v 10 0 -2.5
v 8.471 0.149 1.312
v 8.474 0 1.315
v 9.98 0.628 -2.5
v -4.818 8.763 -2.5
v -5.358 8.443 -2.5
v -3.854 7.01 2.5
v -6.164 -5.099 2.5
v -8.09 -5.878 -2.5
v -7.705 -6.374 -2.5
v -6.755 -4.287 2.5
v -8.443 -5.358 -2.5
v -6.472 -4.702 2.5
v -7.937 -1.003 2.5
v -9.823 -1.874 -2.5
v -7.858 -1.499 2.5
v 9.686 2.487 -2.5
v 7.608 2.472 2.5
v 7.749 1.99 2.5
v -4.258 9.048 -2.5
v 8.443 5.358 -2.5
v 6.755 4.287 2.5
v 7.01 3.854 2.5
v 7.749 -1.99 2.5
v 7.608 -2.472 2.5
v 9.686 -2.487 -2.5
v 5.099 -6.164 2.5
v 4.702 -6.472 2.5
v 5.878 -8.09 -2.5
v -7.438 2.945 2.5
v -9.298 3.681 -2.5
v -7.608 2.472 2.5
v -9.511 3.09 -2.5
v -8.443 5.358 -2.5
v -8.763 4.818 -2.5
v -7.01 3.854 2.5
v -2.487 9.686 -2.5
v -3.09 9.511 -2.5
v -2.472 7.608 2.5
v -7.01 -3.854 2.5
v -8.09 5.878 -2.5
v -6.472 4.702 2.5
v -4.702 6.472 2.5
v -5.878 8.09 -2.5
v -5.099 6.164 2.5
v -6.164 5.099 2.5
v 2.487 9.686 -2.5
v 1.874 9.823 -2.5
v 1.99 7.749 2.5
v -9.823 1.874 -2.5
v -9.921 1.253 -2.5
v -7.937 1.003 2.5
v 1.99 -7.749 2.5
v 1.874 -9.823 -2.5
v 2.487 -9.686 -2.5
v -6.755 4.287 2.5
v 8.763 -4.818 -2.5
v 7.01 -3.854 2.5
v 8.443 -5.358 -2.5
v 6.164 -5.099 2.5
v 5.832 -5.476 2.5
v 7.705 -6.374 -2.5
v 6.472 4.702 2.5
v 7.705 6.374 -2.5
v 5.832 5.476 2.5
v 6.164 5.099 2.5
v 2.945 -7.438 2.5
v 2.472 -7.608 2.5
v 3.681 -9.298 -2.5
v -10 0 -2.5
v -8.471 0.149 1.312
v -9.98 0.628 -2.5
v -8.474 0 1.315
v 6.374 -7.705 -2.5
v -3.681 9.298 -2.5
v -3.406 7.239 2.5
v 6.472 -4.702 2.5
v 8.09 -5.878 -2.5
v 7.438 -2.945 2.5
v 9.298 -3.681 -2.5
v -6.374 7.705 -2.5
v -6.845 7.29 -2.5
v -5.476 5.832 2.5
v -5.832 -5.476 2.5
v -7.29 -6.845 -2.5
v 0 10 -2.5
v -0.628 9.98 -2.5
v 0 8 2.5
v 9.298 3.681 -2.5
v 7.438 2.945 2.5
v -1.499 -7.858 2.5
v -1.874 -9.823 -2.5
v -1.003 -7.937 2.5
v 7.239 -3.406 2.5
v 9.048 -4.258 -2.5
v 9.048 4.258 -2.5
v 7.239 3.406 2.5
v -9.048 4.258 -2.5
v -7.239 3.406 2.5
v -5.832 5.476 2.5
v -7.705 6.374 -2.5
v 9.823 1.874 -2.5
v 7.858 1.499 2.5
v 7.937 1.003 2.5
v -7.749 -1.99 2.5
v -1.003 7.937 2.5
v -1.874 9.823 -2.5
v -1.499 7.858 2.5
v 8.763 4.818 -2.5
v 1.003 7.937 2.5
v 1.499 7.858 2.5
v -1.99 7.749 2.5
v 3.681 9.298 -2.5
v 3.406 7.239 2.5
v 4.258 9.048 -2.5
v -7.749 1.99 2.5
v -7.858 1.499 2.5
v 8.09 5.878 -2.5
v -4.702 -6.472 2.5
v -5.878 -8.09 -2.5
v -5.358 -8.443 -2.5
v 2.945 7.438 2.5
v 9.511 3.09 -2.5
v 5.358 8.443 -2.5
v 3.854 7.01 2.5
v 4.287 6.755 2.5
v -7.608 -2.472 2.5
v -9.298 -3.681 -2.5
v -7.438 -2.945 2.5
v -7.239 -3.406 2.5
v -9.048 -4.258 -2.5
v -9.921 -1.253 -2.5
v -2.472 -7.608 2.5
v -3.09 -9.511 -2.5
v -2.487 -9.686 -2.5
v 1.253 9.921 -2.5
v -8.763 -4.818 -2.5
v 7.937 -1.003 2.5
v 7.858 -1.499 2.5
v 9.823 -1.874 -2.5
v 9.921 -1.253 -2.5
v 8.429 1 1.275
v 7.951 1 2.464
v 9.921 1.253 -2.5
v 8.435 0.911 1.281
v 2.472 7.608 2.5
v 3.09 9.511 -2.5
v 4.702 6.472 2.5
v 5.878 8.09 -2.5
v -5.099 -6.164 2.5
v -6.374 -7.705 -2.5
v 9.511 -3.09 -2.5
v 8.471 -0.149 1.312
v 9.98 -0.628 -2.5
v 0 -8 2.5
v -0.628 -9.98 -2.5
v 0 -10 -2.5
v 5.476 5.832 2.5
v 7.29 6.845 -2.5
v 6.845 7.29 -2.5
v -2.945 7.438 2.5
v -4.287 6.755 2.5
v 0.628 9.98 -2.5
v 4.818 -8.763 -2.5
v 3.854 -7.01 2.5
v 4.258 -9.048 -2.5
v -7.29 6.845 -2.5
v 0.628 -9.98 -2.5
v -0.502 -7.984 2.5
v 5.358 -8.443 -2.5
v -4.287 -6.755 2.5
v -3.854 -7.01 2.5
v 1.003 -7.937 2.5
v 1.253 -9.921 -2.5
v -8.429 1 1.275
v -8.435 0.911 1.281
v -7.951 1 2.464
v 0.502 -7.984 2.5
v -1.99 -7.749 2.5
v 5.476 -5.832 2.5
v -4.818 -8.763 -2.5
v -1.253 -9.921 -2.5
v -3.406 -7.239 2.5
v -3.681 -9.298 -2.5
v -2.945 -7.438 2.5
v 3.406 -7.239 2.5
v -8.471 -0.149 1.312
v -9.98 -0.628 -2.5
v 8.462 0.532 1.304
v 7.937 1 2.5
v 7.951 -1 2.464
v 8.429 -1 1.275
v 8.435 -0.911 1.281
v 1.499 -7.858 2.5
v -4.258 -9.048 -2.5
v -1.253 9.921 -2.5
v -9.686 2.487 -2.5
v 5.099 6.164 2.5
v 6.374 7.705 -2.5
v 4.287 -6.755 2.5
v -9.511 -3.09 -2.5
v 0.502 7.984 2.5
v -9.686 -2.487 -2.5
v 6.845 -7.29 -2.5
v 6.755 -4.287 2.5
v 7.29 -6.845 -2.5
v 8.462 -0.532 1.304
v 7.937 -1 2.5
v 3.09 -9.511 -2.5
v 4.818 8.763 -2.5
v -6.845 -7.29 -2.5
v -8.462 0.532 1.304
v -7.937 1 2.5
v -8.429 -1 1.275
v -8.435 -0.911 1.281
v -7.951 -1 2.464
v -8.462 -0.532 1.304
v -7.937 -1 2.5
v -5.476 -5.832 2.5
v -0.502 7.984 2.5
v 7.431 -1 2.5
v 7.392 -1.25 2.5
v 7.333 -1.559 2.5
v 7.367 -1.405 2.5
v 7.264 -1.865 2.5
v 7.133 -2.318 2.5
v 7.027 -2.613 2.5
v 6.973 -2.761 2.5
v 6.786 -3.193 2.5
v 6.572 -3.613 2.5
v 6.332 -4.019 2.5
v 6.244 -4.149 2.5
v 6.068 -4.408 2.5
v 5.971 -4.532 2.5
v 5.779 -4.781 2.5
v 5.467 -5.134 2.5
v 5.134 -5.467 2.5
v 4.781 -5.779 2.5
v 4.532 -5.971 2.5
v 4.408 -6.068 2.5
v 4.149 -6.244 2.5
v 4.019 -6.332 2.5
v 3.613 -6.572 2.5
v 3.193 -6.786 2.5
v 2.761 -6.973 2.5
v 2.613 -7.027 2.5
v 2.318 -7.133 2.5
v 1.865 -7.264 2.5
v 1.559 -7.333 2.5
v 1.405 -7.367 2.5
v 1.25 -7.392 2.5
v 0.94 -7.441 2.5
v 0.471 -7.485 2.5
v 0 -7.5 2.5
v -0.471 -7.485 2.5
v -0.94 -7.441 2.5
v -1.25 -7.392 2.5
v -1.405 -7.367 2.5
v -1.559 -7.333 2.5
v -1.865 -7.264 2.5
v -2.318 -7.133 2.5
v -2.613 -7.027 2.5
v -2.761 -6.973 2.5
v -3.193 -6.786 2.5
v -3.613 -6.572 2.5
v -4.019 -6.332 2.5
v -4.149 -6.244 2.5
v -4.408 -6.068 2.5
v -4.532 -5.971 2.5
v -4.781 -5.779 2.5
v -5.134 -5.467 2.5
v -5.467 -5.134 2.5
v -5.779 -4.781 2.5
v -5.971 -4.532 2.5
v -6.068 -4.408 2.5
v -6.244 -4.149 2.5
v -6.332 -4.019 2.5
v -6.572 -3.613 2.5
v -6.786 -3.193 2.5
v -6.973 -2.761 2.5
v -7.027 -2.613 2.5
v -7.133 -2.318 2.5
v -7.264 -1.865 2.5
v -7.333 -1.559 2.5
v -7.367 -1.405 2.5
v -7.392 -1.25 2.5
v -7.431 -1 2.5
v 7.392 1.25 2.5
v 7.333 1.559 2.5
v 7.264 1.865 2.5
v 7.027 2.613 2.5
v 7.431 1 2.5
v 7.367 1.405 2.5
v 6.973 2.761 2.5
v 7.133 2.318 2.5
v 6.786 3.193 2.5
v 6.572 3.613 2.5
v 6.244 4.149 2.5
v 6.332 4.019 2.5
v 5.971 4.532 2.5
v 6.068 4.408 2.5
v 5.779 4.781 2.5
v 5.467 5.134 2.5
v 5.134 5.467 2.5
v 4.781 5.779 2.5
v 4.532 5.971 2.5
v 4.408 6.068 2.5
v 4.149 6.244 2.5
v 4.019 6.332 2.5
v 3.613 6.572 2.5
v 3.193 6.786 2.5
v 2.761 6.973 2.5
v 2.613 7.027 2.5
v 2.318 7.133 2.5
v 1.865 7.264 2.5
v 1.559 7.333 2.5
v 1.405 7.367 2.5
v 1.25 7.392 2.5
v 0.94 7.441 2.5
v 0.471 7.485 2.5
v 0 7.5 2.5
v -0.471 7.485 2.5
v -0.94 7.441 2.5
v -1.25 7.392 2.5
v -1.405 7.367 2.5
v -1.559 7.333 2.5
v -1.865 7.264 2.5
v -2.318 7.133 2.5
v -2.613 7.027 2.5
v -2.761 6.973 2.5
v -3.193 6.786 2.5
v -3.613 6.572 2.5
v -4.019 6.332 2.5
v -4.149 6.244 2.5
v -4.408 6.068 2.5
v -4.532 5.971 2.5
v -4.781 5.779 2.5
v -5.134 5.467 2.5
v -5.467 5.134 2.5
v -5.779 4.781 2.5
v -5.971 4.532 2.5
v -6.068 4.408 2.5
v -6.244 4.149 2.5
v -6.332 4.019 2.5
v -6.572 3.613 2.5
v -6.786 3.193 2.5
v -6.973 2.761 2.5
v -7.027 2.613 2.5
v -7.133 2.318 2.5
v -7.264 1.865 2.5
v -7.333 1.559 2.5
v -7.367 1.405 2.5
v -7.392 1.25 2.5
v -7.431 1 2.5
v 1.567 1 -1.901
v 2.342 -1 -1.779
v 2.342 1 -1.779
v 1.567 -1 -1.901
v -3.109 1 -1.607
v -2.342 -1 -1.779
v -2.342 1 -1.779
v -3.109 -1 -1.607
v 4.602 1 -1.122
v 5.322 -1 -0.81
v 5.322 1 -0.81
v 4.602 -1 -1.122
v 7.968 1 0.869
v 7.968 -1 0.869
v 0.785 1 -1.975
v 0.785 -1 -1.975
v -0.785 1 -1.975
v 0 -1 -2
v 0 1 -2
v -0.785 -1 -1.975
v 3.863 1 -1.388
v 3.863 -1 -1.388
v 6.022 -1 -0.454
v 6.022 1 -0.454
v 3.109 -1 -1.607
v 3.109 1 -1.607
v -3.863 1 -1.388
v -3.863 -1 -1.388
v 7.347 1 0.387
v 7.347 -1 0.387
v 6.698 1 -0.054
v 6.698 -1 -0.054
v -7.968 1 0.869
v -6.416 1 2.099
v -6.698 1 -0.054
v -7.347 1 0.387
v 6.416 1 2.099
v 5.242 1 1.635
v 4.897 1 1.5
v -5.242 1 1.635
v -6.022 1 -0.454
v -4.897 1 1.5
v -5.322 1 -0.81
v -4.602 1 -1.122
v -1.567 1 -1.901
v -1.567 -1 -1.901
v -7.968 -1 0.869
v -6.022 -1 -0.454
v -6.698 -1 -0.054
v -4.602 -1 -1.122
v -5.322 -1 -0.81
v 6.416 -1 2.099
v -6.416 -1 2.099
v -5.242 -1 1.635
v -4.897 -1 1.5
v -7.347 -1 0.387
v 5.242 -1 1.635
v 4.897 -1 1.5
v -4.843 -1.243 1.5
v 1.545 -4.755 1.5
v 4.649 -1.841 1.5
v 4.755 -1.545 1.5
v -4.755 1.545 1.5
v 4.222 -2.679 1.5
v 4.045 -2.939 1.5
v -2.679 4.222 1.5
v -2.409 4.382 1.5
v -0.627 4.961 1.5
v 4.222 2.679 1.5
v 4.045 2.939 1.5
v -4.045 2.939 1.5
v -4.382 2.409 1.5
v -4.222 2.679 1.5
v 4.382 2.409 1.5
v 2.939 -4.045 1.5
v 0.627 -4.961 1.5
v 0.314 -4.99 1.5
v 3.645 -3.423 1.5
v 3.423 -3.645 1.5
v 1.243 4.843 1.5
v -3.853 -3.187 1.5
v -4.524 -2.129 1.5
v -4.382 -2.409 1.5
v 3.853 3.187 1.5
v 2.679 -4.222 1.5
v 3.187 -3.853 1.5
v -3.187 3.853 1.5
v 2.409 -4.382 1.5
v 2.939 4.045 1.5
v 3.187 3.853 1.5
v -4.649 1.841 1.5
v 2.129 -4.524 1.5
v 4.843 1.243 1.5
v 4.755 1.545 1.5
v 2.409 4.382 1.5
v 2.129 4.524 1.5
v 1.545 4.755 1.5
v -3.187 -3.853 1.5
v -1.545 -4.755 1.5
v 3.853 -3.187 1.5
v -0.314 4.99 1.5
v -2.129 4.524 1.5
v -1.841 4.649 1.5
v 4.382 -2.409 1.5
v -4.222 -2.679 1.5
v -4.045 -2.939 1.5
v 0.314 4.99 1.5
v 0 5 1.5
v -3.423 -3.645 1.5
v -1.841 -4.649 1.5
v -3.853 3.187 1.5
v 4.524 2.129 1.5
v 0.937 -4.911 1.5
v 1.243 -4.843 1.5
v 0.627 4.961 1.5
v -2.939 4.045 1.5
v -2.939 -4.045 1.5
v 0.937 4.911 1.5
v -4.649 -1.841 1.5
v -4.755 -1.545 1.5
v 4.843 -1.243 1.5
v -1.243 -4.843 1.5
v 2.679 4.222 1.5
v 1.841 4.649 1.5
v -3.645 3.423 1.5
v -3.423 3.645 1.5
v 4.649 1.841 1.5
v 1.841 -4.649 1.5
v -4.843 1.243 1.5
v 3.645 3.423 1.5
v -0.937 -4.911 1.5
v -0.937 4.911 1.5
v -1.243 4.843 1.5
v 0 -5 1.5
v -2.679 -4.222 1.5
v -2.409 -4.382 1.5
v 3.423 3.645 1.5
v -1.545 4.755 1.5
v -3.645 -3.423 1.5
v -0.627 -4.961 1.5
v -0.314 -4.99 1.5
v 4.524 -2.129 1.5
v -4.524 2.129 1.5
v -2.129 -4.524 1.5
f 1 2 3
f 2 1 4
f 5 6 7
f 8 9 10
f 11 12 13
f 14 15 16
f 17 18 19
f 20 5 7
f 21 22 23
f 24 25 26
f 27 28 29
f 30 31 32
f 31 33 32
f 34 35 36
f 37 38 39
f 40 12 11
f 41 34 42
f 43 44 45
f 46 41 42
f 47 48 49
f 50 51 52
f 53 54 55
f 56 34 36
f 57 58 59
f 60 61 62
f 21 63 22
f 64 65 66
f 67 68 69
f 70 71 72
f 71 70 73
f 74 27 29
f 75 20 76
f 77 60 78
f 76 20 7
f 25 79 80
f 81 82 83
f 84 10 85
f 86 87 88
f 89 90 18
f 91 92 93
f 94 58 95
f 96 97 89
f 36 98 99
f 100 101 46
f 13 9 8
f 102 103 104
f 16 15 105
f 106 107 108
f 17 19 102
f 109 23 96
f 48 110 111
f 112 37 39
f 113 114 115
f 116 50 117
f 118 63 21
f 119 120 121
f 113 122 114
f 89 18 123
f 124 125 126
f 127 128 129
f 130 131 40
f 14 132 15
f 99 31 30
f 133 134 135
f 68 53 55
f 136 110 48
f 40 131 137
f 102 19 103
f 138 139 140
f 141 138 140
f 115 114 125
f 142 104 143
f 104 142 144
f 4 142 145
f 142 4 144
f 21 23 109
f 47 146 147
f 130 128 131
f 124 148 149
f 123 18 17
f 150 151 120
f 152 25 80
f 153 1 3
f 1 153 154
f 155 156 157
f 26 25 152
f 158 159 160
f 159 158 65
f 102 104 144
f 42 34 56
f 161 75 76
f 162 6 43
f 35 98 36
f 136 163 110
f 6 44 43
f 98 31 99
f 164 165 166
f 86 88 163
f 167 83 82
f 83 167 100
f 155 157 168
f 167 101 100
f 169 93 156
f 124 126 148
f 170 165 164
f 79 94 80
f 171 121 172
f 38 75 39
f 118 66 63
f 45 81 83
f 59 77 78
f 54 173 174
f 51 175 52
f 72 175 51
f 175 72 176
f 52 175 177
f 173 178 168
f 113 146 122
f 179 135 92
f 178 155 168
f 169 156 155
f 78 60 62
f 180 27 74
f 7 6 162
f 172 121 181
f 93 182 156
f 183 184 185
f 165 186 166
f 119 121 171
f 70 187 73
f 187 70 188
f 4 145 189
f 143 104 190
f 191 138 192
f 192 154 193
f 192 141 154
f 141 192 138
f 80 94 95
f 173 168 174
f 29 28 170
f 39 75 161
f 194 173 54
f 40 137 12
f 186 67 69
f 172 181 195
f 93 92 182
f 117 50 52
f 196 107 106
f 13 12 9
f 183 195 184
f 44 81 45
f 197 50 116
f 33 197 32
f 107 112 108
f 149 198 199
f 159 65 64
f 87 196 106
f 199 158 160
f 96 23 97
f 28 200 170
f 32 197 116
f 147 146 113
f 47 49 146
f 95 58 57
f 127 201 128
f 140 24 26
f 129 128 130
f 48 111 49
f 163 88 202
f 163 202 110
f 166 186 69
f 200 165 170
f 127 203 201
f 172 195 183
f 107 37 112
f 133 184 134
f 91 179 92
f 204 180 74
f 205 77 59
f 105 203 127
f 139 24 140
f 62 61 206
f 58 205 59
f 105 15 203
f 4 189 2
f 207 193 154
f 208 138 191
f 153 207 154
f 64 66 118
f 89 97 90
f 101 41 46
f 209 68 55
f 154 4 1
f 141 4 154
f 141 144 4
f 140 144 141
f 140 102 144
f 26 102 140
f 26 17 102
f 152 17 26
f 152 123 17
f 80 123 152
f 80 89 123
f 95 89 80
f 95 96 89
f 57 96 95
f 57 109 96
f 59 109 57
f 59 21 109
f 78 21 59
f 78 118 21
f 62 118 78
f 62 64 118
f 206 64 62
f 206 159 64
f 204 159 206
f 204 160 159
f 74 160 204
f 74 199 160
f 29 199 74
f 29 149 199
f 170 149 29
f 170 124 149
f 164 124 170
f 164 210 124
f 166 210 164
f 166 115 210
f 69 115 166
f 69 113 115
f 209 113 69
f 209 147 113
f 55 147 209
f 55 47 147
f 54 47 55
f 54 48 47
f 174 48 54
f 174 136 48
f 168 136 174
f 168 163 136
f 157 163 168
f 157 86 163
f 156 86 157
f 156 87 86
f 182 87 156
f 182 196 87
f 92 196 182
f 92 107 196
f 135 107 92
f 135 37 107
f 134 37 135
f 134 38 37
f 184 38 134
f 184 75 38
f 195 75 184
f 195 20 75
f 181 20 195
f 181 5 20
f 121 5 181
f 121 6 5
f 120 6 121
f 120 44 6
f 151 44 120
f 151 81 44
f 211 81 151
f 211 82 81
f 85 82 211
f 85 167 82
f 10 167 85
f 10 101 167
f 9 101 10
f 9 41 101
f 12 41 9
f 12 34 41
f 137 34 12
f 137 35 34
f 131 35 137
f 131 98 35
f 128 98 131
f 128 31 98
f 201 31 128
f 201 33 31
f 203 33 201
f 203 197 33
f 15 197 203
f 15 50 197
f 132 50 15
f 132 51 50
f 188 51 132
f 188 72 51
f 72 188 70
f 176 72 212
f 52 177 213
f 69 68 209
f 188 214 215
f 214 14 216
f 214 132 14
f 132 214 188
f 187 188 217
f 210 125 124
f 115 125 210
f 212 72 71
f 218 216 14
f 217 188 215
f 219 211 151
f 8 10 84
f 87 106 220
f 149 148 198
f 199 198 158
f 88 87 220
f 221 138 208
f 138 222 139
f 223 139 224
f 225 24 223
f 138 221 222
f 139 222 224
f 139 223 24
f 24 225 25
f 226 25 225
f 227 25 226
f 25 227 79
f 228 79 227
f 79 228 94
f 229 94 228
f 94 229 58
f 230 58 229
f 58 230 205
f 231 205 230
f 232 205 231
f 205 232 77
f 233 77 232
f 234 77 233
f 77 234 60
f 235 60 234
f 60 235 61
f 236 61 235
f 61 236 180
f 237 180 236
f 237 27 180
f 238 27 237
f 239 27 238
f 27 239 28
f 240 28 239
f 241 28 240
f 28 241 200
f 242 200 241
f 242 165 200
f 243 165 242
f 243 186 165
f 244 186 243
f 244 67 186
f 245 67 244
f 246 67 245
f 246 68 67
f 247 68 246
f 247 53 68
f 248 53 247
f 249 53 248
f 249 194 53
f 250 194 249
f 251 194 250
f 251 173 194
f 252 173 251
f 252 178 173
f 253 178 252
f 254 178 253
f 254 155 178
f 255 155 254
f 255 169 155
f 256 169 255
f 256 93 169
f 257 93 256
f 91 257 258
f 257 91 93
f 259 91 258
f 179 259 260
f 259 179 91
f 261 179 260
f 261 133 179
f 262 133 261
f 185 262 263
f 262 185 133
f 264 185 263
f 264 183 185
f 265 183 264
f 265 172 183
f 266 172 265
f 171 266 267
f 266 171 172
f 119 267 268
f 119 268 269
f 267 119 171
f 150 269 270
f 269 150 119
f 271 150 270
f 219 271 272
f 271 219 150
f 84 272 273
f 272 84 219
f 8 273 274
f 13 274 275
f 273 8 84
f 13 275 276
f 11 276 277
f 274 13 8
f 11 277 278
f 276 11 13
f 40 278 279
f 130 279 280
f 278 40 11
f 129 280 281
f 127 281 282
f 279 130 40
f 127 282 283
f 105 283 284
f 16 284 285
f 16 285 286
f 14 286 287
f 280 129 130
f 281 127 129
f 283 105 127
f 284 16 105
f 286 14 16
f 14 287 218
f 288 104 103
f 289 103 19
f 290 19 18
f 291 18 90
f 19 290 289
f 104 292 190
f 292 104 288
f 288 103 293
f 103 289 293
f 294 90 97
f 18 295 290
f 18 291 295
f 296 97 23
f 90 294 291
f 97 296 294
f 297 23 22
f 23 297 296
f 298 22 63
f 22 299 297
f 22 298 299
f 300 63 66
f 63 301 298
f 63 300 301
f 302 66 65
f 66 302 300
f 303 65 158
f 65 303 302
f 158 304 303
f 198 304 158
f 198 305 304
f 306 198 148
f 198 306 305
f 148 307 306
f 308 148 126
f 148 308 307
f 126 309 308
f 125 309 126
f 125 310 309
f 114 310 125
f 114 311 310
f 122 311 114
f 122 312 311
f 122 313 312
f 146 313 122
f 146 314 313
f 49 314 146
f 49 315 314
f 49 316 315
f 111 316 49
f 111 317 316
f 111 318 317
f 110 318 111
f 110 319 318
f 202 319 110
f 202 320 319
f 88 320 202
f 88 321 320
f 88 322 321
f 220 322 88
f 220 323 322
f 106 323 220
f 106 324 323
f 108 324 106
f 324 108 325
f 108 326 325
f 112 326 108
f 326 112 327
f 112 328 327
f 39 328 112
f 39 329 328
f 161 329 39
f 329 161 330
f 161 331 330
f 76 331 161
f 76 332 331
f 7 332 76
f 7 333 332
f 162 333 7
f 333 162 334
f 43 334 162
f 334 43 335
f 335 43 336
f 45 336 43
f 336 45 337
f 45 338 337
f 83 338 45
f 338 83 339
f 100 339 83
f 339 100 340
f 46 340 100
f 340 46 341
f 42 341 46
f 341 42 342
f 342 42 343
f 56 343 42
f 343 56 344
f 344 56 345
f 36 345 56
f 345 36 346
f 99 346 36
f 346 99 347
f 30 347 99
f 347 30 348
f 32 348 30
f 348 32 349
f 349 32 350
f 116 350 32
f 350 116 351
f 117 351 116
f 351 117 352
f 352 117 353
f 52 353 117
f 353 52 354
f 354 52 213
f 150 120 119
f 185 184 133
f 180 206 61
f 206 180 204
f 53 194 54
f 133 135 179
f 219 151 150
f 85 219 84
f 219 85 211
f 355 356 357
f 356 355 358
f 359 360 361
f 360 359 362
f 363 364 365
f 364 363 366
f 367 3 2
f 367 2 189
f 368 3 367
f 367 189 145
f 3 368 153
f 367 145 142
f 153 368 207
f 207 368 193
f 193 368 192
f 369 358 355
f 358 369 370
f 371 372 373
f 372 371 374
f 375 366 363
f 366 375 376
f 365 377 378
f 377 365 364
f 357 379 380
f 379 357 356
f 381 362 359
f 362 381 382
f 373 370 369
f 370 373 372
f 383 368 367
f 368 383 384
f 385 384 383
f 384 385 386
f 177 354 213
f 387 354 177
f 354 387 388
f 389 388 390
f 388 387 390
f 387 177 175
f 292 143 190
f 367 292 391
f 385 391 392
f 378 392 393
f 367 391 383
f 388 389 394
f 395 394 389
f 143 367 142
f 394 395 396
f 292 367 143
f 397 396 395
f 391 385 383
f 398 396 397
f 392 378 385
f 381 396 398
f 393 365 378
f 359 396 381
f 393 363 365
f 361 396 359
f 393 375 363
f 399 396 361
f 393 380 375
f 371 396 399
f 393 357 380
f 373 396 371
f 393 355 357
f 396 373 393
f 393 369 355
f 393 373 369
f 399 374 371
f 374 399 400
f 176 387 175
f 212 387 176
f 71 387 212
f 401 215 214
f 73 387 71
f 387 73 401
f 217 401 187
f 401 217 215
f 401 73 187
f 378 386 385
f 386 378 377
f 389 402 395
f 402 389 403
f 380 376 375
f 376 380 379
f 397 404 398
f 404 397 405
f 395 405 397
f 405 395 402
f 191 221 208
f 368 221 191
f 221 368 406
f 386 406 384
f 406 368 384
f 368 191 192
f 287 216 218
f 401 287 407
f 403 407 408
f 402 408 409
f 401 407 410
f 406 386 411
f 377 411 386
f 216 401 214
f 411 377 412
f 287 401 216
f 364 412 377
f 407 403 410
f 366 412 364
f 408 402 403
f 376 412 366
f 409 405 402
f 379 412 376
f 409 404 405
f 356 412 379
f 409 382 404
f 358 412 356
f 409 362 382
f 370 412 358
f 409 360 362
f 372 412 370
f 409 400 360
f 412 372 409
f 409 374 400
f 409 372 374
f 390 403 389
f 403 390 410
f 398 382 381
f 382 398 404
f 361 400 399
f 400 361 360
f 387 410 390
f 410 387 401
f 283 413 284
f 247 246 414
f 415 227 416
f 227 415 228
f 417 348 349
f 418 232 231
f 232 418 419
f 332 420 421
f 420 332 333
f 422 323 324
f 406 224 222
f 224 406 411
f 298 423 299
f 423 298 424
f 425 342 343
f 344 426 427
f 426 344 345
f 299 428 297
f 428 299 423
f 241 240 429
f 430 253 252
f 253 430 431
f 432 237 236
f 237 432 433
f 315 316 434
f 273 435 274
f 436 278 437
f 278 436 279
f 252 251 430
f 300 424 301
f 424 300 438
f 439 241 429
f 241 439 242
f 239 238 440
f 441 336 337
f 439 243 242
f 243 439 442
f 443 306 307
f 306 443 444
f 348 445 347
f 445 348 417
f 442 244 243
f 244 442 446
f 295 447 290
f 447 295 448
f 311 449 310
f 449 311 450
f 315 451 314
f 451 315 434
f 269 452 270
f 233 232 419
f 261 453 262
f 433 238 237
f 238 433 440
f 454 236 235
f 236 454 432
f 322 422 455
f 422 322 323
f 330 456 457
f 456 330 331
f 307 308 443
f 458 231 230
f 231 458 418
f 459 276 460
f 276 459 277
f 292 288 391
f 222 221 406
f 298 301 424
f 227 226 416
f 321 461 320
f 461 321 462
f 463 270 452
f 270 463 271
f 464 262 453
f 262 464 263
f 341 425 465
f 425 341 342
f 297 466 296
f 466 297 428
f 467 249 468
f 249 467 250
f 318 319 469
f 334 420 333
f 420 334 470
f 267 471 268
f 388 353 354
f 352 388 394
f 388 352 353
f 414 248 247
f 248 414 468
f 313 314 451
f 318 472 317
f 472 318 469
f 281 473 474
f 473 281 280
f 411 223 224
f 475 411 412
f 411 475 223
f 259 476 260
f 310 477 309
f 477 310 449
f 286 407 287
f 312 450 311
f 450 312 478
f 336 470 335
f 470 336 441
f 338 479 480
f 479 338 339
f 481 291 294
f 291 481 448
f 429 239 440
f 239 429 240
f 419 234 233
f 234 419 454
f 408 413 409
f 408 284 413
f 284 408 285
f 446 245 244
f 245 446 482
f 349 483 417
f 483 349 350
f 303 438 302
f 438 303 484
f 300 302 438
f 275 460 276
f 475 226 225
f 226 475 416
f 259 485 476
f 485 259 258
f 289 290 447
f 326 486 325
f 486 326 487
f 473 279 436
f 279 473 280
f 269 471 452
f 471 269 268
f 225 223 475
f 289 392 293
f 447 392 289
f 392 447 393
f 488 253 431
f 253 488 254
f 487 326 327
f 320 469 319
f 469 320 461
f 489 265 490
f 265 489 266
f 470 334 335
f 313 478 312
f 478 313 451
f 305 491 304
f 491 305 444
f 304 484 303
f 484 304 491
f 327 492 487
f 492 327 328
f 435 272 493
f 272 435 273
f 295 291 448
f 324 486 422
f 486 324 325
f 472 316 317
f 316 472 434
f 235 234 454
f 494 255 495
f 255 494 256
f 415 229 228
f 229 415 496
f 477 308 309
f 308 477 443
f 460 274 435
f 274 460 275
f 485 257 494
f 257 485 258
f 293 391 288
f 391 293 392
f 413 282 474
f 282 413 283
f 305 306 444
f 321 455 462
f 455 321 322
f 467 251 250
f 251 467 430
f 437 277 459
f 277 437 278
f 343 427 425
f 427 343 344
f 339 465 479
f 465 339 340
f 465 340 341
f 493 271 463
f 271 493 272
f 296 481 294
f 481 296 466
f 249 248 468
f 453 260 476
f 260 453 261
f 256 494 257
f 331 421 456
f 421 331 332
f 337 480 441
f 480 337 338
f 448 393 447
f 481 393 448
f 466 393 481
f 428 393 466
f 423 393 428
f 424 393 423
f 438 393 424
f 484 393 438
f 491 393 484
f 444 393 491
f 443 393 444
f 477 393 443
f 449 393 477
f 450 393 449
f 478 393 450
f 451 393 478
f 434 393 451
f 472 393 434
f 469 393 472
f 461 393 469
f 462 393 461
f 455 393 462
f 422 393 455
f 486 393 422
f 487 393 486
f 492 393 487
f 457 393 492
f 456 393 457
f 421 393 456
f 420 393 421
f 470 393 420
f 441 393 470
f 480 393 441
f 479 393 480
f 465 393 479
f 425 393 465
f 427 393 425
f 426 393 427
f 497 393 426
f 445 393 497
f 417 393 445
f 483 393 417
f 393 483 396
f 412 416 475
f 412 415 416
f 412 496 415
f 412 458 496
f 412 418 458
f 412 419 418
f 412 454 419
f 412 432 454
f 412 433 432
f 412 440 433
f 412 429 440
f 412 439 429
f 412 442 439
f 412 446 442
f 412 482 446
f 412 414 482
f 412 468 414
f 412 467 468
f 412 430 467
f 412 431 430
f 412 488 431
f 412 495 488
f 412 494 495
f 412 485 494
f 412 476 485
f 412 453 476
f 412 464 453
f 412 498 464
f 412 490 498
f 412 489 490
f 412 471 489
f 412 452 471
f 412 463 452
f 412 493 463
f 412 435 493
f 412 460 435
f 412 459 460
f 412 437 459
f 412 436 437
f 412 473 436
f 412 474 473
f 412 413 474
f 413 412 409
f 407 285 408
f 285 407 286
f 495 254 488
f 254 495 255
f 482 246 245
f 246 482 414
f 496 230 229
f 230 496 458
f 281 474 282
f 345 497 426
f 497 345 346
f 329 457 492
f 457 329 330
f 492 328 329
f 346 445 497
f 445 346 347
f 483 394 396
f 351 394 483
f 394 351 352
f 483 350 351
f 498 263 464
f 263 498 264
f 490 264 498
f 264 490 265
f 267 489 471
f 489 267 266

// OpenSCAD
$fn=100;
difference() {
    cylinder(5,d1=20,d2=16,center=true);
    translate([0,0,25/2-2]) rotate(90,[1,0,0]) cylinder(2,d=25,center=true);
    translate([0,0,2.5]) cylinder(2,d1=10,d2=20,center=true);
}
